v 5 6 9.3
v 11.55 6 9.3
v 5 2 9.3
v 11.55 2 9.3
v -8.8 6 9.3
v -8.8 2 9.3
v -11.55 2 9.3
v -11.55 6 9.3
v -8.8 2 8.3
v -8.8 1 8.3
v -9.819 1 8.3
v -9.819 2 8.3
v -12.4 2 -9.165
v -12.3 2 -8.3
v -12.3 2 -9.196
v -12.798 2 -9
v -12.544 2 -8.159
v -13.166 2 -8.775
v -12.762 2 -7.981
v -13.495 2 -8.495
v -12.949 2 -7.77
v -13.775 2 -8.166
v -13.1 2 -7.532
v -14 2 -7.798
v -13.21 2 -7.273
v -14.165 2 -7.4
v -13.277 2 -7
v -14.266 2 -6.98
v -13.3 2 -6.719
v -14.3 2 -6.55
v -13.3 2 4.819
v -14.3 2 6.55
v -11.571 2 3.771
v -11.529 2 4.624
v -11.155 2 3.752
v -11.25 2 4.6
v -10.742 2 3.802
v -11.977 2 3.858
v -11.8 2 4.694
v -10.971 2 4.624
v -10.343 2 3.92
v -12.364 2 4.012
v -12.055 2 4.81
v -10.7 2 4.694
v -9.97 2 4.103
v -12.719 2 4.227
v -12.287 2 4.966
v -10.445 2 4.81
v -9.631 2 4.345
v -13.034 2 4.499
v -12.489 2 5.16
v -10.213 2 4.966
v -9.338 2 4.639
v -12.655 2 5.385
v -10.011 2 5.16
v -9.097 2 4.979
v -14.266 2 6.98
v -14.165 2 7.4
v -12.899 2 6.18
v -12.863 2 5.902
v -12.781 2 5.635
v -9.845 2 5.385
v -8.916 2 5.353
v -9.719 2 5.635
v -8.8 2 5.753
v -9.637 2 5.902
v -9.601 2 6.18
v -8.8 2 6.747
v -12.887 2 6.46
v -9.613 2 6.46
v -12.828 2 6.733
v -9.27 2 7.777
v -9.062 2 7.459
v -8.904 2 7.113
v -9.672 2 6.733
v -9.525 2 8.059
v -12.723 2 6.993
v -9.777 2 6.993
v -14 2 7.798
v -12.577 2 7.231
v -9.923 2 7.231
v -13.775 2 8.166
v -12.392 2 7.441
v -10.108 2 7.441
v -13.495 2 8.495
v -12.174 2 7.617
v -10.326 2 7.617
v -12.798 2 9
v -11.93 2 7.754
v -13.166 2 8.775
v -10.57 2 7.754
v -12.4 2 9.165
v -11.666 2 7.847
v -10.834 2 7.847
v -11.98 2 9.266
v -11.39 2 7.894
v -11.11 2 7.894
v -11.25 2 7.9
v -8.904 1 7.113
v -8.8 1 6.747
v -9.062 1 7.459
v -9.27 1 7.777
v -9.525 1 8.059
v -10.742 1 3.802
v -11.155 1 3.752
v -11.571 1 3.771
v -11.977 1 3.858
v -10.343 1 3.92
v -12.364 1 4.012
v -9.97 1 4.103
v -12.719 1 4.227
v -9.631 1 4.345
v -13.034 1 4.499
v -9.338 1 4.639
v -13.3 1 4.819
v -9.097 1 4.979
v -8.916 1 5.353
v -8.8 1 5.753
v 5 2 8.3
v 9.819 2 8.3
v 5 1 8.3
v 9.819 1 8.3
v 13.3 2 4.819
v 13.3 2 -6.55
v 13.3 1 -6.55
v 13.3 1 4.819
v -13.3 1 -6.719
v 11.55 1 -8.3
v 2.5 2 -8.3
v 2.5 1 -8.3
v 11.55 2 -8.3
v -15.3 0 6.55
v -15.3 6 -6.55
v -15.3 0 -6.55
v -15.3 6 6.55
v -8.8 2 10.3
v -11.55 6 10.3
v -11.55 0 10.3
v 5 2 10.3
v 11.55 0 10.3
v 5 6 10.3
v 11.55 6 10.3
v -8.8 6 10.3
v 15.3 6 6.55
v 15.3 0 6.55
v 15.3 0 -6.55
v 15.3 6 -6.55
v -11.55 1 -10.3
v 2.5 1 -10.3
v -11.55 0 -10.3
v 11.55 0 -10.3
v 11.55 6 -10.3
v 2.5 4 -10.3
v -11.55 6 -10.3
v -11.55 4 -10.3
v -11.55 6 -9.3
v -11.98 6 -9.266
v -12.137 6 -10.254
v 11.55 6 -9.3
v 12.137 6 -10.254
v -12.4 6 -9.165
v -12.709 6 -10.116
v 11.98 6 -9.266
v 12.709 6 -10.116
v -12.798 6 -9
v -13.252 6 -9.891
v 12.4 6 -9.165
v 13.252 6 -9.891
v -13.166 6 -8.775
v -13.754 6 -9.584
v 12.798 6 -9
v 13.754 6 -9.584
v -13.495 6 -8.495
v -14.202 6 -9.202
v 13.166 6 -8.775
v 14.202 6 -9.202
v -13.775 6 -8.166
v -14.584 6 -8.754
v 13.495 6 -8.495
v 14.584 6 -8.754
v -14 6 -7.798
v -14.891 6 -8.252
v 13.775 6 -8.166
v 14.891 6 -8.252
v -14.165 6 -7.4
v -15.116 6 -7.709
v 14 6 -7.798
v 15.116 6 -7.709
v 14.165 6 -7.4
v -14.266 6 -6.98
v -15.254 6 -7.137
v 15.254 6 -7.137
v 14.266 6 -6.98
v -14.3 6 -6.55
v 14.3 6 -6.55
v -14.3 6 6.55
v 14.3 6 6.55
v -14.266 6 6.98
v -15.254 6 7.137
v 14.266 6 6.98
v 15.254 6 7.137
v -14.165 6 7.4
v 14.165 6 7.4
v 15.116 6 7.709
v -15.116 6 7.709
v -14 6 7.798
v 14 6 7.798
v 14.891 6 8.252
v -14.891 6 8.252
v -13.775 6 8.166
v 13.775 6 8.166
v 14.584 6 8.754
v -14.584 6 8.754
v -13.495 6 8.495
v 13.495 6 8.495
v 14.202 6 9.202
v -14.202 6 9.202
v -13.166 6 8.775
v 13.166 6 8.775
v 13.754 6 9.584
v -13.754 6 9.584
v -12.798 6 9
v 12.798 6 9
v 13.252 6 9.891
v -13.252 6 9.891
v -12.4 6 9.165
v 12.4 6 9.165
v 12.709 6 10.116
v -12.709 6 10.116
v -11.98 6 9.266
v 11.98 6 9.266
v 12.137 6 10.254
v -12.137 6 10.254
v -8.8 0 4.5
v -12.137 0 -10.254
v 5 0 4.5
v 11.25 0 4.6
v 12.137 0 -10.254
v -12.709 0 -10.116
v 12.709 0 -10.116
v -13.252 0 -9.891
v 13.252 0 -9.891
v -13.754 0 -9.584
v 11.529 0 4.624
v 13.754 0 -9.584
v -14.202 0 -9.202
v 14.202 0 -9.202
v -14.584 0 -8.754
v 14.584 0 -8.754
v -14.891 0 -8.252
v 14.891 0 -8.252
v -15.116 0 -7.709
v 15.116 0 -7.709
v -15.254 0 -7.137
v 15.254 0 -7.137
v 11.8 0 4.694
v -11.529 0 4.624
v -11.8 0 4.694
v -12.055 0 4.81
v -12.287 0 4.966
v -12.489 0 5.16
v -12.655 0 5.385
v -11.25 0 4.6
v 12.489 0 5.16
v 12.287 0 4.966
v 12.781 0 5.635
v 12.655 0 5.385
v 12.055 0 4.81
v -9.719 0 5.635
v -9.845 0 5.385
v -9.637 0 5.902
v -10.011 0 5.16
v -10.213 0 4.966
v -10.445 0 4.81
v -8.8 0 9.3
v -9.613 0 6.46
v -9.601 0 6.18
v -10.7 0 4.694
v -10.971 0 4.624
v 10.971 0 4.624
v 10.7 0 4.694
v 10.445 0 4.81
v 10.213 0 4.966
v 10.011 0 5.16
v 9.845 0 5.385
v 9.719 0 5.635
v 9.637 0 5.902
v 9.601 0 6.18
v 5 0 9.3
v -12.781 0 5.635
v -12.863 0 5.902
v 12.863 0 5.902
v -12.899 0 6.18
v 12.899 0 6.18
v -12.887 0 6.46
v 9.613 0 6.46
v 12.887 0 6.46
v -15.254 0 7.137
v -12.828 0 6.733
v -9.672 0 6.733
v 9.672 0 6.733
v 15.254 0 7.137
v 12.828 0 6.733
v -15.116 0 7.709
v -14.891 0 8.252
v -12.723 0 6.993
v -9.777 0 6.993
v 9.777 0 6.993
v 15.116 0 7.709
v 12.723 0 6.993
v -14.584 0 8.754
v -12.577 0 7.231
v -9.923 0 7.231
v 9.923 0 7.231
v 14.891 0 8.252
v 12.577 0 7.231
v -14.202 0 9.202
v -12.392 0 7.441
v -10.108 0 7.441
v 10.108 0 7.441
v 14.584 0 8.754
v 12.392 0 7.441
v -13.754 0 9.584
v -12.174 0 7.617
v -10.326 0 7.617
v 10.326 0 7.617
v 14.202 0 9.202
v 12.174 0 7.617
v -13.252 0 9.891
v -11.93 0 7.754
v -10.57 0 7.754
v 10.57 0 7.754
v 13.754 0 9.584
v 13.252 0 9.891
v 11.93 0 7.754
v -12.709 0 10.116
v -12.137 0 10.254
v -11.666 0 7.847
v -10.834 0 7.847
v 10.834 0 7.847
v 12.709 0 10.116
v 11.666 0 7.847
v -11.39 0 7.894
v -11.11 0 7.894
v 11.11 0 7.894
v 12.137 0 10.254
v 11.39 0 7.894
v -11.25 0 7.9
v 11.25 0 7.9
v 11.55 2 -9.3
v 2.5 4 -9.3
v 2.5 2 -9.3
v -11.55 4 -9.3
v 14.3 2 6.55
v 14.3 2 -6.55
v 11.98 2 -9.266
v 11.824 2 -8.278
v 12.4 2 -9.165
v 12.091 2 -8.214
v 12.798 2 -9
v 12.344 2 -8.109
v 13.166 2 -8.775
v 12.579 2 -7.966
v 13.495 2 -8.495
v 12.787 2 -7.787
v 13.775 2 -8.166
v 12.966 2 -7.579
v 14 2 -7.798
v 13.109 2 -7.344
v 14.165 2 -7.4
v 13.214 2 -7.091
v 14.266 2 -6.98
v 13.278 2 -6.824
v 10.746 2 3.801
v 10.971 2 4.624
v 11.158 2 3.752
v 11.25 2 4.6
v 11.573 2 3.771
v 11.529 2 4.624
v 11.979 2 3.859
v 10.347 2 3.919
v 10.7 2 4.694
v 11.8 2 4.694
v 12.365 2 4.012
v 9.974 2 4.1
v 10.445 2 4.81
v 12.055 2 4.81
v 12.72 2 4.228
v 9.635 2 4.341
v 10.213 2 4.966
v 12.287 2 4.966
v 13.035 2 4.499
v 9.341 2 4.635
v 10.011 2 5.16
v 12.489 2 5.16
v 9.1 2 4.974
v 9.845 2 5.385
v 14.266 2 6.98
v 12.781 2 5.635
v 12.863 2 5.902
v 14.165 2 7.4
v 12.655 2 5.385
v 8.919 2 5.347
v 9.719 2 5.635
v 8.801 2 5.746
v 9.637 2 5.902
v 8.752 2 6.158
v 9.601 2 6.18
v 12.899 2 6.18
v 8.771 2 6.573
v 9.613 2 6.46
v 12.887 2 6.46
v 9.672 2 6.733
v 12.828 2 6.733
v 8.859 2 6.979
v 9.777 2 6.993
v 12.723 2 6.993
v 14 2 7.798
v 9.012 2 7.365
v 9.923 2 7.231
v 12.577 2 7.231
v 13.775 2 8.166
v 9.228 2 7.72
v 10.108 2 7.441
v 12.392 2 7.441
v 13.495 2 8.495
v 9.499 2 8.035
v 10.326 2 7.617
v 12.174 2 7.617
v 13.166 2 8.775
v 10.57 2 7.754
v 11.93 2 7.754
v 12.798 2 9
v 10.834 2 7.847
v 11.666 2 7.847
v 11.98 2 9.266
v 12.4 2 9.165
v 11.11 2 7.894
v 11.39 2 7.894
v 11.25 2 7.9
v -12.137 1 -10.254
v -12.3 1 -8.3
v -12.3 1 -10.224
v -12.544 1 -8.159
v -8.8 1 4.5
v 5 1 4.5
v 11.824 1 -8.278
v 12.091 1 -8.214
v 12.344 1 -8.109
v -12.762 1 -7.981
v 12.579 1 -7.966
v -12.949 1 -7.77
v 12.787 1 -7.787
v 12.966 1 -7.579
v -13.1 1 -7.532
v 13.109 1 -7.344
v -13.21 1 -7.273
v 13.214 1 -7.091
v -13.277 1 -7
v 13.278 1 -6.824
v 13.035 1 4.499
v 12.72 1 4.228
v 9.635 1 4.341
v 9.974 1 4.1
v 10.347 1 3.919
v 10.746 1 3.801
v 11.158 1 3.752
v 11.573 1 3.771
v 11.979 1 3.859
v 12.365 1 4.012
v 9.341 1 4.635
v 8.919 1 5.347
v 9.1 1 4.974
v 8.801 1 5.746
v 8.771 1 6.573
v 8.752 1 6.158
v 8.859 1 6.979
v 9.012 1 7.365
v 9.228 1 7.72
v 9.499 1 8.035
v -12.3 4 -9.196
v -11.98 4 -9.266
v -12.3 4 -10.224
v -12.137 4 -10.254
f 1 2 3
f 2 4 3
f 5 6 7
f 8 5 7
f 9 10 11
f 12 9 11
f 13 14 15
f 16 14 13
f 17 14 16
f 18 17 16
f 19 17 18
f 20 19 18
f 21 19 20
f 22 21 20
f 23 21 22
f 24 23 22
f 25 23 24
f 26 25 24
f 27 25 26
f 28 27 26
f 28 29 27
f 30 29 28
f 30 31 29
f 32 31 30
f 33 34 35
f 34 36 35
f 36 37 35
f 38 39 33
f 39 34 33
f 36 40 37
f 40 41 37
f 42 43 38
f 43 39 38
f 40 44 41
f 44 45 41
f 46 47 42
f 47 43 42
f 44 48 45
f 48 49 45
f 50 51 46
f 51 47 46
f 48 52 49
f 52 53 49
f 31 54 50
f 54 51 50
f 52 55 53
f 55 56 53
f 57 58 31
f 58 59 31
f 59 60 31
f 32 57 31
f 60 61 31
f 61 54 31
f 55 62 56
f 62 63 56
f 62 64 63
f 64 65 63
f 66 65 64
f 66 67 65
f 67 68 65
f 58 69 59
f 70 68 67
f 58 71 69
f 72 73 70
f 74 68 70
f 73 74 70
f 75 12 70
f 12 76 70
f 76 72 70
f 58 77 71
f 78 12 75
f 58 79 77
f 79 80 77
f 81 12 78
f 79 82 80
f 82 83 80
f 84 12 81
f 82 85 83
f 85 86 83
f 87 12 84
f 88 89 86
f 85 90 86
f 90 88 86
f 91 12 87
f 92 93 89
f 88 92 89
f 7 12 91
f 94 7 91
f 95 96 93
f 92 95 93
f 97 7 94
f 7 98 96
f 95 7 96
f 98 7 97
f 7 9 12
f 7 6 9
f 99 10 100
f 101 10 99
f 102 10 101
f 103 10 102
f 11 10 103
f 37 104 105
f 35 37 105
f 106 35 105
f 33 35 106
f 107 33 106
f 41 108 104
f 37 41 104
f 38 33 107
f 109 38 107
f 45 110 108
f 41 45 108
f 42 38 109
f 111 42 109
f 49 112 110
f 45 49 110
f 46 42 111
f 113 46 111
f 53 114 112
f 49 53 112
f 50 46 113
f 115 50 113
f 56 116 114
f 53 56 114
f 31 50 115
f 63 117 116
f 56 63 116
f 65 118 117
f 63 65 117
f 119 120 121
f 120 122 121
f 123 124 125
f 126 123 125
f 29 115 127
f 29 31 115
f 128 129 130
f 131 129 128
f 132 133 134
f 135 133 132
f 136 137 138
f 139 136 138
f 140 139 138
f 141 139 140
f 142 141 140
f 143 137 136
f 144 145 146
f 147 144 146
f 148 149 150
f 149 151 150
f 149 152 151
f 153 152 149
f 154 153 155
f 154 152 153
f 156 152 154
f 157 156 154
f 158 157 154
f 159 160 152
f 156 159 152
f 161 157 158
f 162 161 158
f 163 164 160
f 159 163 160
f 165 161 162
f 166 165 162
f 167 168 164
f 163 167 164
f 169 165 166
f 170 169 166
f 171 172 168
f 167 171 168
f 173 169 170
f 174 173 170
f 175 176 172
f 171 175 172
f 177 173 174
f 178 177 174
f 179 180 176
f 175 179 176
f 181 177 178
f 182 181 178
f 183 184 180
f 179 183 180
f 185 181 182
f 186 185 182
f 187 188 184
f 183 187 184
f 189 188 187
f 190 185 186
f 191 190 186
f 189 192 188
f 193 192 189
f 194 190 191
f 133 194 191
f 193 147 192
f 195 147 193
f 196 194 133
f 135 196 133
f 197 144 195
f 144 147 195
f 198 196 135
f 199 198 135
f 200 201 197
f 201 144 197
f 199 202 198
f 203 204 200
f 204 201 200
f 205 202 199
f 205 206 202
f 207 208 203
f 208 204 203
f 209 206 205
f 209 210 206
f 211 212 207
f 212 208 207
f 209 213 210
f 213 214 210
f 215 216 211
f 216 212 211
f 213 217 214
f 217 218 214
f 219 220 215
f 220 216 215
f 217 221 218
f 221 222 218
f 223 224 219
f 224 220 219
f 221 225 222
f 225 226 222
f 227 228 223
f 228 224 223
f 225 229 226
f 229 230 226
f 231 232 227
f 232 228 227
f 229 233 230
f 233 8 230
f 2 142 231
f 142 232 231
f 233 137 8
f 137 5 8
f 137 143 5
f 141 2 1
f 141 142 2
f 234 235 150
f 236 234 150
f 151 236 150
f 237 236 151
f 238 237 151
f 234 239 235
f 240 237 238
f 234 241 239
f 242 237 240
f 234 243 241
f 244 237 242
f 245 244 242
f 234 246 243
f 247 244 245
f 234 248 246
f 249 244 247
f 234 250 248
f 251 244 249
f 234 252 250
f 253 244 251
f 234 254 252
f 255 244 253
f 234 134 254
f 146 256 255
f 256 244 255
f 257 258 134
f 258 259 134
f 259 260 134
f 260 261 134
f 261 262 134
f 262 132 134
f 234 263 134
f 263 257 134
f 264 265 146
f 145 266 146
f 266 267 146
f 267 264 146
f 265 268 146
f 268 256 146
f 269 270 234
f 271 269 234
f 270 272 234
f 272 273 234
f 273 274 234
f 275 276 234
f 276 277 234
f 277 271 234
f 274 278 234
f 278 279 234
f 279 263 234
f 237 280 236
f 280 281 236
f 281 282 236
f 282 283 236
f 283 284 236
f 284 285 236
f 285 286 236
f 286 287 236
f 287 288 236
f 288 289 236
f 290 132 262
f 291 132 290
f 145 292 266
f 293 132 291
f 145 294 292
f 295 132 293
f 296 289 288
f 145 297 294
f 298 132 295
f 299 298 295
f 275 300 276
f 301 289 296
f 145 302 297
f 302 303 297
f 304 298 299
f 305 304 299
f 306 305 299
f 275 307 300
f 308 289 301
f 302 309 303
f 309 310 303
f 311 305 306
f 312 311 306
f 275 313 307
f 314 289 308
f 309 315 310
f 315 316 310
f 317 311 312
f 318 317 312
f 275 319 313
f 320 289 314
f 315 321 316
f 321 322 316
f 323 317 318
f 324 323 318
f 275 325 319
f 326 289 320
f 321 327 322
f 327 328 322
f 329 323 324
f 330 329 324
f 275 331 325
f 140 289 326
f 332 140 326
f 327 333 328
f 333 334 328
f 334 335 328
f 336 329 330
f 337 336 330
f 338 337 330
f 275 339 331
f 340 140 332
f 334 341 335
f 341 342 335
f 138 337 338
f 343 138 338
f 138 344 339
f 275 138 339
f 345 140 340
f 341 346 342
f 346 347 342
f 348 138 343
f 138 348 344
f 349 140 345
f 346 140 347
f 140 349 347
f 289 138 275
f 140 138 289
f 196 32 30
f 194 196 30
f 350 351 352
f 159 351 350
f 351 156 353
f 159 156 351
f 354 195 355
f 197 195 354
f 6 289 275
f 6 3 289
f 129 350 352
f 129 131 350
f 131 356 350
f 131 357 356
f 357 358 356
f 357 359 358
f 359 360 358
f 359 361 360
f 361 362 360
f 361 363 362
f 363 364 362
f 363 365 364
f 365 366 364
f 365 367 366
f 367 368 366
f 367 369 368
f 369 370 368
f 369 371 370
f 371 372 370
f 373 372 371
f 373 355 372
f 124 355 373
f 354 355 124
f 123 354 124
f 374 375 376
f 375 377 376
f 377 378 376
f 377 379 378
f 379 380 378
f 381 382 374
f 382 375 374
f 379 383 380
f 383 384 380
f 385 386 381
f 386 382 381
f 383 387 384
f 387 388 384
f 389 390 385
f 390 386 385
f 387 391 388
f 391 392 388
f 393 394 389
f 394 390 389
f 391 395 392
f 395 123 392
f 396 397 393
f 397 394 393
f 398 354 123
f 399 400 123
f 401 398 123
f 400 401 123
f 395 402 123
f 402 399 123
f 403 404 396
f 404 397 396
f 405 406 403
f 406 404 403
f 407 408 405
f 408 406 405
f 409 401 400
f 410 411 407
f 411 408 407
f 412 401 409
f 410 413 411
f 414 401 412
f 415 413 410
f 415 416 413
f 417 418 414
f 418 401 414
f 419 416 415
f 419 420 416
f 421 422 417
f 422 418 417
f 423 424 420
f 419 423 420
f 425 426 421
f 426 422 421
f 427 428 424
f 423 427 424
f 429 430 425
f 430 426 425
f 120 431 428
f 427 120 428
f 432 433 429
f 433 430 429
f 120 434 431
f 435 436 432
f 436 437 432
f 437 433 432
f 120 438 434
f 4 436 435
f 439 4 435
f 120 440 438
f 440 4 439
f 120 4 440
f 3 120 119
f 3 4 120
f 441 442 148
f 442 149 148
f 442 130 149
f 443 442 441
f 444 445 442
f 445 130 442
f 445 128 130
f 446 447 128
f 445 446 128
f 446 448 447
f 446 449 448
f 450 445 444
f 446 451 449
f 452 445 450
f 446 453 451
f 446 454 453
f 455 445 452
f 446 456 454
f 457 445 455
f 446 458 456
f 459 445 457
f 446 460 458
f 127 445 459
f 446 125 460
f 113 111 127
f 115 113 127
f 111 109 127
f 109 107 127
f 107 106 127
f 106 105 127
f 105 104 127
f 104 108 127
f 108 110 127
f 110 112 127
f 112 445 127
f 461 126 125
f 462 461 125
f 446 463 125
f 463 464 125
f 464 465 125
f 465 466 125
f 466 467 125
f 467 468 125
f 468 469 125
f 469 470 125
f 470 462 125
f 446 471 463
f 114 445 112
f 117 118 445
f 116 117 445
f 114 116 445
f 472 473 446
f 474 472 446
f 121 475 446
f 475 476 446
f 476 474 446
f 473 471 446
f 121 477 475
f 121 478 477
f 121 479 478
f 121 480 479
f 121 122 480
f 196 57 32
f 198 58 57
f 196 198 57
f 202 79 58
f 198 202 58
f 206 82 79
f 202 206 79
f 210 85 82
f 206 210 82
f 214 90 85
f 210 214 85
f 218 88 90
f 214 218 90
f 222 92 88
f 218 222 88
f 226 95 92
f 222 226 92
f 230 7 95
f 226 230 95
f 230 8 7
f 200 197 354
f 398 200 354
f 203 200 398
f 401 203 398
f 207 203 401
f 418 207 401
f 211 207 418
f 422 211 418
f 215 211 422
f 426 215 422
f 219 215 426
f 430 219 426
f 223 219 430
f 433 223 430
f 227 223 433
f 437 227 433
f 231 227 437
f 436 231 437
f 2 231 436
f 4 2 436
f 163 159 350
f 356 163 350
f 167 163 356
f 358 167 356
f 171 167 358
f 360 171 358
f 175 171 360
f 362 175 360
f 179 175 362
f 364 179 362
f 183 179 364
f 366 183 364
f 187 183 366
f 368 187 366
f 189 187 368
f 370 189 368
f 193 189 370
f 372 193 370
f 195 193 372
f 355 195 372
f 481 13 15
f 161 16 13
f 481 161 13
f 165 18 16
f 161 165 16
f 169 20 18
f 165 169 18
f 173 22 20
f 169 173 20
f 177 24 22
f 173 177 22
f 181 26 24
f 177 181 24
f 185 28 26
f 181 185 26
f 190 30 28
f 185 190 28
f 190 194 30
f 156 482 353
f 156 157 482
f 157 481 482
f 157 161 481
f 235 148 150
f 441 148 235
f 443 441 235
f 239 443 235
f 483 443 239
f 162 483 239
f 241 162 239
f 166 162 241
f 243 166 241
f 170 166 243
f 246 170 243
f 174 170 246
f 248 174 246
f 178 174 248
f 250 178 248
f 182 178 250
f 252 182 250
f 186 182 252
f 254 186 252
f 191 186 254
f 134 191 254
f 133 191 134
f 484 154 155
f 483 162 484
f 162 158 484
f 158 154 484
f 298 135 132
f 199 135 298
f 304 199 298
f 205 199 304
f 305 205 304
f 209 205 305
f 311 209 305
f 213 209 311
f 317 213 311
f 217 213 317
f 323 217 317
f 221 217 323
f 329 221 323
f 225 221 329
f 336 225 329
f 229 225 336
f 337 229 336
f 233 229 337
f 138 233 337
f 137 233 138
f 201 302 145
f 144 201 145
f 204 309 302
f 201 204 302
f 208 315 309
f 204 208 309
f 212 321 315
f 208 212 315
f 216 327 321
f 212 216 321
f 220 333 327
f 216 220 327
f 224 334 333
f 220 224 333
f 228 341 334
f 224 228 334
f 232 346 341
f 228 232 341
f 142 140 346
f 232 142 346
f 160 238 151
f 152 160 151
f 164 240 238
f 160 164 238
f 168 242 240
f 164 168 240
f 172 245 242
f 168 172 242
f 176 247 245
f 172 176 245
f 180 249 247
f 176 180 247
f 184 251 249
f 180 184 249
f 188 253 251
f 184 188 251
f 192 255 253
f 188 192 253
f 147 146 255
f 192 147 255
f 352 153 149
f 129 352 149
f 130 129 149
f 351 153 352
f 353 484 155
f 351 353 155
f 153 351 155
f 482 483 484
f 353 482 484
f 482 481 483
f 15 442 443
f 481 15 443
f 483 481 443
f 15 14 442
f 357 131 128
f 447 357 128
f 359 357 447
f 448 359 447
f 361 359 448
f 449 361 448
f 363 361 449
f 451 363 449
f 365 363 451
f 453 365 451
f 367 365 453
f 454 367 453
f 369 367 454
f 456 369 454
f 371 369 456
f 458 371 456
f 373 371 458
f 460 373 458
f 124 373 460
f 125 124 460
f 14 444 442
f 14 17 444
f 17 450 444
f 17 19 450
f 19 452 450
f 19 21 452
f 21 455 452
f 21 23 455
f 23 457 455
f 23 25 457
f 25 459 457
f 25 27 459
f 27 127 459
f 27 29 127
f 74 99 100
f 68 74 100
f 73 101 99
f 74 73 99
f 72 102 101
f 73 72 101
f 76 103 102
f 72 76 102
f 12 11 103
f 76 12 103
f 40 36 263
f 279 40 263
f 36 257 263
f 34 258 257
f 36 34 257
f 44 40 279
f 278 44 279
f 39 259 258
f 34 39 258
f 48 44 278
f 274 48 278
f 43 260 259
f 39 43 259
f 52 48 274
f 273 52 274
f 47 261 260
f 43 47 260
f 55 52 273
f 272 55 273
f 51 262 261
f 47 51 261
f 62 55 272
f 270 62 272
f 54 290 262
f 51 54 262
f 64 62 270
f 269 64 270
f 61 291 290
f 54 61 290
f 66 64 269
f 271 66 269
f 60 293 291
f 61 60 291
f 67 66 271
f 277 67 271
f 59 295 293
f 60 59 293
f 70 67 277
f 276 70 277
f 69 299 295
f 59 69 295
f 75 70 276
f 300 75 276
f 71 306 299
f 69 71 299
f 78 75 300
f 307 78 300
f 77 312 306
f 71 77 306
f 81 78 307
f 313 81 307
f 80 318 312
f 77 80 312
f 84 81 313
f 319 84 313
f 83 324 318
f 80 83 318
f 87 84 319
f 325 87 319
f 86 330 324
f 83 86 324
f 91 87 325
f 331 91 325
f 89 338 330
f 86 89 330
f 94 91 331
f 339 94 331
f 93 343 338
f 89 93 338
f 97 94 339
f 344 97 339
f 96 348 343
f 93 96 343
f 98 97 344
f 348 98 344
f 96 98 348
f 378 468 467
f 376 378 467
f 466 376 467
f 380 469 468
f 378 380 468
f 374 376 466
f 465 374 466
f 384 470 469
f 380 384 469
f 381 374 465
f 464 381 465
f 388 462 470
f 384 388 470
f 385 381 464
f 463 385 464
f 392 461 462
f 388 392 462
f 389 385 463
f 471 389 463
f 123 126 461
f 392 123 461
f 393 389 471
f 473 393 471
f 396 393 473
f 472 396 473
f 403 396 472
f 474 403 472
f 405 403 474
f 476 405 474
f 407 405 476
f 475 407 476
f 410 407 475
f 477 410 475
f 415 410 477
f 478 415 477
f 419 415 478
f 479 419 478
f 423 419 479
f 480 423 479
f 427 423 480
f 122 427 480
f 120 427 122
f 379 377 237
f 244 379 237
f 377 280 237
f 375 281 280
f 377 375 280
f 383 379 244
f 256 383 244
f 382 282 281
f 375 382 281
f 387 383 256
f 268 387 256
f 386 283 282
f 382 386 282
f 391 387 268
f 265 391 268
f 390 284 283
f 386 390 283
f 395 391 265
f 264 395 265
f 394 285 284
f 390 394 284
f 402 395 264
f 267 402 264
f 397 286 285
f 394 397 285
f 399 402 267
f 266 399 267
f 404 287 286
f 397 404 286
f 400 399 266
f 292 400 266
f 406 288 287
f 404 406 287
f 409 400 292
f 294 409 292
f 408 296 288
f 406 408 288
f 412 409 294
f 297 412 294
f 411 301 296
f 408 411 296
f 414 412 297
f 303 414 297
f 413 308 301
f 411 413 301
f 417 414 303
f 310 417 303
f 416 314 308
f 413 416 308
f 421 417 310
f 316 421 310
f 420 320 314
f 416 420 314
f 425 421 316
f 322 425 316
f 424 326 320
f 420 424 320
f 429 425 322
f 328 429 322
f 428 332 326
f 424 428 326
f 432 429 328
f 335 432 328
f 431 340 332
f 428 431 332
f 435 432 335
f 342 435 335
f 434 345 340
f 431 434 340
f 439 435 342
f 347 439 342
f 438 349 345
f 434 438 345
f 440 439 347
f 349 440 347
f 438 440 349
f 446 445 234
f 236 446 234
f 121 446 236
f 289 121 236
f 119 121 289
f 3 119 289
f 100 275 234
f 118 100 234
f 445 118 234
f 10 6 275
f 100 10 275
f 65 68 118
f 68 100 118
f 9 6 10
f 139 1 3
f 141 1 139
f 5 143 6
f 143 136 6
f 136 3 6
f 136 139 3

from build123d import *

# Parameters (mm, degrees)
SKETCH_1_W          = 30.6
SKETCH_1_H          = 20.6
EXTRUDE_1_DEPTH     = 6
SKETCH_2_W          = 28.6
SKETCH_2_H          = 18.6
CUT_EXTRUDE_1_DEPTH = 4
SKETCH_3_W          = 26.6
SKETCH_3_H          = 16.6
CUT_EXTRUDE_2_DEPTH = 1
FILLET_1_R          = 2.75
FILLET_2_R          = 3.75
SKETCH_4_W          = 14.8
SKETCH_4_H          = 3
CUT_EXTRUDE_3_DEPTH = 5
FILLET_3_R          = 1.75
SKETCH_5_R          = 2.5
SKETCH_5_R_2        = 1.65
EXTRUDE_2_DEPTH     = 1
CUT_EXTRUDE_START   = -2
SKETCH_6_R          = 1.65
CUT_EXTRUDE_4_DEPTH = 2
SKETCH_7_W          = 13.8
SKETCH_7_H          = 4.8
CUT_EXTRUDE_5_DEPTH = 8
SKETCH_8_W          = 13.8
SKETCH_8_H          = 4
CUT_EXTRUDE_6_DEPTH = 10


with BuildPart() as part:
    # 草图1 → 凸台-拉伸1 (new body)
    with BuildSketch(Plane(origin=(0, 0, 0), x_dir=(1, 0, 0), z_dir=(0, 1, 0))):
        Rectangle(SKETCH_1_W, SKETCH_1_H)
    extrude(amount=EXTRUDE_1_DEPTH)

    # 草图2 → 切除-拉伸1 (cut)
    with BuildSketch(Plane(origin=(0, 6, 0), x_dir=(1, 0, 0), z_dir=(0, 1, 0))):
        Rectangle(SKETCH_2_W, SKETCH_2_H)
    extrude(amount=-CUT_EXTRUDE_1_DEPTH, mode=Mode.SUBTRACT)

    # 草图3 → 切除-拉伸2 (cut)
    with BuildSketch(Plane(origin=(0, 2, 0), x_dir=(1, 0, 0), z_dir=(0, 1, 0))):
        Rectangle(SKETCH_3_W, SKETCH_3_H)
    extrude(amount=-CUT_EXTRUDE_2_DEPTH, mode=Mode.SUBTRACT)

    # 圆角1
    fillet_1_edges = [part.edges().sort_by_distance(p)[0] for p in [
        (-14.3, 4, 9.3),
        (-14.3, 4, -9.3),
        (14.3, 4, -9.3),
        (14.3, 4, 9.3),
    ]]
    fillet(fillet_1_edges, radius=FILLET_1_R)

    # 圆角2
    fillet_2_edges = [part.edges().sort_by_distance(p)[0] for p in [
        (-15.3, 3, -10.3),
        (15.3, 3, -10.3),
        (15.3, 3, 10.3),
        (-15.3, 3, 10.3),
    ]]
    fillet(fillet_2_edges, radius=FILLET_2_R)

    # 草图4 → 切除-拉伸3 (cut)
    with BuildSketch(Plane(origin=(0, 0, -10.3), x_dir=(-1, 0, 0), z_dir=(0, 0, -1))):
        with Locations((4.9, 2.5)):
            Rectangle(SKETCH_4_W, SKETCH_4_H)
    extrude(amount=-CUT_EXTRUDE_3_DEPTH, mode=Mode.SUBTRACT)

    # 圆角3
    # the kernel refuses this fillet: 1.75 mm, written as the material it adds along each edge
    with BuildSketch(Plane(origin=(-13.3, 2, 8.3), x_dir=(1, 0, 0), z_dir=(0, -1, 0)), Plane(origin=(13.3, 2, -8.3), x_dir=(-1, 0, 0), z_dir=(0, -1, 0)), Plane(origin=(13.3, 2, 8.3), x_dir=(0, 0, -1), z_dir=(0, -1, 0))) as fillet_3_piece_1:
        with BuildLine():
            CenterArc((FILLET_3_R, -FILLET_3_R), FILLET_3_R, 90, 90)
            Line((0, -FILLET_3_R), (-FILLET_3_R * 0.02, -FILLET_3_R))
            Line((-FILLET_3_R * 0.02, -FILLET_3_R), (-FILLET_3_R * 0.02, FILLET_3_R * 0.02))
            Line((-FILLET_3_R * 0.02, FILLET_3_R * 0.02), (FILLET_3_R, FILLET_3_R * 0.02))
            Line((FILLET_3_R, FILLET_3_R * 0.02), (FILLET_3_R, 0))
        make_face()
    extrude(amount=1)
    with BuildSketch(Plane(origin=(-13.3, 2, -8.3), x_dir=(1, 0, 0), z_dir=(0, -1, 0))) as fillet_3_piece_2:
        with BuildLine():
            CenterArc((1.75, 1.58113883), FILLET_3_R, 180, 64.623066475)
            Line((0, 1.58113883), (-0.035, 1.58113883))
            Line((-0.035, 1.58113883), (-0.035, 0))
            Line((-0.035, 0), (0, -0.035))
            ThreePointArc((0, -0.035), (0.5, -0.035), (0.985, -0.031622777))
            Line((0.985, -0.031622777), (1, 0))
        make_face()
    extrude(amount=1)

    # 草图5 → 凸台-拉伸2 (add)
    # profile 1 of 2: a face of its own
    with BuildSketch(Plane(origin=(0, 1, 0), x_dir=(1, 0, 0), z_dir=(0, 1, 0))):
        with Locations((-11.25, -6.25)):
            Circle(SKETCH_5_R)
        with Locations(Location((-11.25, -6.25, 0), (0, 0, 270))):
            Circle(SKETCH_5_R_2, mode=Mode.SUBTRACT)
    # profile 2 of 2: a face of its own
    with BuildSketch(Plane(origin=(0, 1, 0), x_dir=(1, 0, 0), z_dir=(0, 1, 0))):
        with Locations((11.25, -6.25)):
            Circle(SKETCH_5_R)
        with Locations(Location((11.25, -6.25, 0), (0, 0, 270))):
            Circle(SKETCH_5_R_2, mode=Mode.SUBTRACT)
    extrude(amount=EXTRUDE_2_DEPTH)

    # 草图6 → 切除-拉伸4 (cut)
    with BuildSketch(Plane(origin=(0, 1, 0), x_dir=(1, 0, 0), z_dir=(0, 1, 0)).offset(CUT_EXTRUDE_START)):
        with Locations(Location((-11.25, -6.25, 0), (0, 0, 270))):
            Circle(SKETCH_6_R)
        with Locations(Location((11.25, -6.25, 0), (0, 0, 270))):
            Circle(SKETCH_6_R)
    extrude(amount=CUT_EXTRUDE_4_DEPTH, mode=Mode.SUBTRACT)

    # 草图7 → 切除-拉伸5 (cut)
    with BuildSketch(Plane(origin=(0, 6, 0), x_dir=(1, 0, 0), z_dir=(0, 1, 0))):
        with Locations((-1.9, -6.9)):
            Rectangle(SKETCH_7_W, SKETCH_7_H)
    extrude(amount=-CUT_EXTRUDE_5_DEPTH, mode=Mode.SUBTRACT)

    # 草图8 → 切除-拉伸6 (cut)
    with BuildSketch(Plane(origin=(0, 0, 9.3), x_dir=(-1, 0, 0), z_dir=(0, 0, -1))):
        with Locations((1.9, 4)):
            Rectangle(SKETCH_8_W, SKETCH_8_H)
    extrude(amount=-CUT_EXTRUDE_6_DEPTH, mode=Mode.SUBTRACT)


solid = part.part
